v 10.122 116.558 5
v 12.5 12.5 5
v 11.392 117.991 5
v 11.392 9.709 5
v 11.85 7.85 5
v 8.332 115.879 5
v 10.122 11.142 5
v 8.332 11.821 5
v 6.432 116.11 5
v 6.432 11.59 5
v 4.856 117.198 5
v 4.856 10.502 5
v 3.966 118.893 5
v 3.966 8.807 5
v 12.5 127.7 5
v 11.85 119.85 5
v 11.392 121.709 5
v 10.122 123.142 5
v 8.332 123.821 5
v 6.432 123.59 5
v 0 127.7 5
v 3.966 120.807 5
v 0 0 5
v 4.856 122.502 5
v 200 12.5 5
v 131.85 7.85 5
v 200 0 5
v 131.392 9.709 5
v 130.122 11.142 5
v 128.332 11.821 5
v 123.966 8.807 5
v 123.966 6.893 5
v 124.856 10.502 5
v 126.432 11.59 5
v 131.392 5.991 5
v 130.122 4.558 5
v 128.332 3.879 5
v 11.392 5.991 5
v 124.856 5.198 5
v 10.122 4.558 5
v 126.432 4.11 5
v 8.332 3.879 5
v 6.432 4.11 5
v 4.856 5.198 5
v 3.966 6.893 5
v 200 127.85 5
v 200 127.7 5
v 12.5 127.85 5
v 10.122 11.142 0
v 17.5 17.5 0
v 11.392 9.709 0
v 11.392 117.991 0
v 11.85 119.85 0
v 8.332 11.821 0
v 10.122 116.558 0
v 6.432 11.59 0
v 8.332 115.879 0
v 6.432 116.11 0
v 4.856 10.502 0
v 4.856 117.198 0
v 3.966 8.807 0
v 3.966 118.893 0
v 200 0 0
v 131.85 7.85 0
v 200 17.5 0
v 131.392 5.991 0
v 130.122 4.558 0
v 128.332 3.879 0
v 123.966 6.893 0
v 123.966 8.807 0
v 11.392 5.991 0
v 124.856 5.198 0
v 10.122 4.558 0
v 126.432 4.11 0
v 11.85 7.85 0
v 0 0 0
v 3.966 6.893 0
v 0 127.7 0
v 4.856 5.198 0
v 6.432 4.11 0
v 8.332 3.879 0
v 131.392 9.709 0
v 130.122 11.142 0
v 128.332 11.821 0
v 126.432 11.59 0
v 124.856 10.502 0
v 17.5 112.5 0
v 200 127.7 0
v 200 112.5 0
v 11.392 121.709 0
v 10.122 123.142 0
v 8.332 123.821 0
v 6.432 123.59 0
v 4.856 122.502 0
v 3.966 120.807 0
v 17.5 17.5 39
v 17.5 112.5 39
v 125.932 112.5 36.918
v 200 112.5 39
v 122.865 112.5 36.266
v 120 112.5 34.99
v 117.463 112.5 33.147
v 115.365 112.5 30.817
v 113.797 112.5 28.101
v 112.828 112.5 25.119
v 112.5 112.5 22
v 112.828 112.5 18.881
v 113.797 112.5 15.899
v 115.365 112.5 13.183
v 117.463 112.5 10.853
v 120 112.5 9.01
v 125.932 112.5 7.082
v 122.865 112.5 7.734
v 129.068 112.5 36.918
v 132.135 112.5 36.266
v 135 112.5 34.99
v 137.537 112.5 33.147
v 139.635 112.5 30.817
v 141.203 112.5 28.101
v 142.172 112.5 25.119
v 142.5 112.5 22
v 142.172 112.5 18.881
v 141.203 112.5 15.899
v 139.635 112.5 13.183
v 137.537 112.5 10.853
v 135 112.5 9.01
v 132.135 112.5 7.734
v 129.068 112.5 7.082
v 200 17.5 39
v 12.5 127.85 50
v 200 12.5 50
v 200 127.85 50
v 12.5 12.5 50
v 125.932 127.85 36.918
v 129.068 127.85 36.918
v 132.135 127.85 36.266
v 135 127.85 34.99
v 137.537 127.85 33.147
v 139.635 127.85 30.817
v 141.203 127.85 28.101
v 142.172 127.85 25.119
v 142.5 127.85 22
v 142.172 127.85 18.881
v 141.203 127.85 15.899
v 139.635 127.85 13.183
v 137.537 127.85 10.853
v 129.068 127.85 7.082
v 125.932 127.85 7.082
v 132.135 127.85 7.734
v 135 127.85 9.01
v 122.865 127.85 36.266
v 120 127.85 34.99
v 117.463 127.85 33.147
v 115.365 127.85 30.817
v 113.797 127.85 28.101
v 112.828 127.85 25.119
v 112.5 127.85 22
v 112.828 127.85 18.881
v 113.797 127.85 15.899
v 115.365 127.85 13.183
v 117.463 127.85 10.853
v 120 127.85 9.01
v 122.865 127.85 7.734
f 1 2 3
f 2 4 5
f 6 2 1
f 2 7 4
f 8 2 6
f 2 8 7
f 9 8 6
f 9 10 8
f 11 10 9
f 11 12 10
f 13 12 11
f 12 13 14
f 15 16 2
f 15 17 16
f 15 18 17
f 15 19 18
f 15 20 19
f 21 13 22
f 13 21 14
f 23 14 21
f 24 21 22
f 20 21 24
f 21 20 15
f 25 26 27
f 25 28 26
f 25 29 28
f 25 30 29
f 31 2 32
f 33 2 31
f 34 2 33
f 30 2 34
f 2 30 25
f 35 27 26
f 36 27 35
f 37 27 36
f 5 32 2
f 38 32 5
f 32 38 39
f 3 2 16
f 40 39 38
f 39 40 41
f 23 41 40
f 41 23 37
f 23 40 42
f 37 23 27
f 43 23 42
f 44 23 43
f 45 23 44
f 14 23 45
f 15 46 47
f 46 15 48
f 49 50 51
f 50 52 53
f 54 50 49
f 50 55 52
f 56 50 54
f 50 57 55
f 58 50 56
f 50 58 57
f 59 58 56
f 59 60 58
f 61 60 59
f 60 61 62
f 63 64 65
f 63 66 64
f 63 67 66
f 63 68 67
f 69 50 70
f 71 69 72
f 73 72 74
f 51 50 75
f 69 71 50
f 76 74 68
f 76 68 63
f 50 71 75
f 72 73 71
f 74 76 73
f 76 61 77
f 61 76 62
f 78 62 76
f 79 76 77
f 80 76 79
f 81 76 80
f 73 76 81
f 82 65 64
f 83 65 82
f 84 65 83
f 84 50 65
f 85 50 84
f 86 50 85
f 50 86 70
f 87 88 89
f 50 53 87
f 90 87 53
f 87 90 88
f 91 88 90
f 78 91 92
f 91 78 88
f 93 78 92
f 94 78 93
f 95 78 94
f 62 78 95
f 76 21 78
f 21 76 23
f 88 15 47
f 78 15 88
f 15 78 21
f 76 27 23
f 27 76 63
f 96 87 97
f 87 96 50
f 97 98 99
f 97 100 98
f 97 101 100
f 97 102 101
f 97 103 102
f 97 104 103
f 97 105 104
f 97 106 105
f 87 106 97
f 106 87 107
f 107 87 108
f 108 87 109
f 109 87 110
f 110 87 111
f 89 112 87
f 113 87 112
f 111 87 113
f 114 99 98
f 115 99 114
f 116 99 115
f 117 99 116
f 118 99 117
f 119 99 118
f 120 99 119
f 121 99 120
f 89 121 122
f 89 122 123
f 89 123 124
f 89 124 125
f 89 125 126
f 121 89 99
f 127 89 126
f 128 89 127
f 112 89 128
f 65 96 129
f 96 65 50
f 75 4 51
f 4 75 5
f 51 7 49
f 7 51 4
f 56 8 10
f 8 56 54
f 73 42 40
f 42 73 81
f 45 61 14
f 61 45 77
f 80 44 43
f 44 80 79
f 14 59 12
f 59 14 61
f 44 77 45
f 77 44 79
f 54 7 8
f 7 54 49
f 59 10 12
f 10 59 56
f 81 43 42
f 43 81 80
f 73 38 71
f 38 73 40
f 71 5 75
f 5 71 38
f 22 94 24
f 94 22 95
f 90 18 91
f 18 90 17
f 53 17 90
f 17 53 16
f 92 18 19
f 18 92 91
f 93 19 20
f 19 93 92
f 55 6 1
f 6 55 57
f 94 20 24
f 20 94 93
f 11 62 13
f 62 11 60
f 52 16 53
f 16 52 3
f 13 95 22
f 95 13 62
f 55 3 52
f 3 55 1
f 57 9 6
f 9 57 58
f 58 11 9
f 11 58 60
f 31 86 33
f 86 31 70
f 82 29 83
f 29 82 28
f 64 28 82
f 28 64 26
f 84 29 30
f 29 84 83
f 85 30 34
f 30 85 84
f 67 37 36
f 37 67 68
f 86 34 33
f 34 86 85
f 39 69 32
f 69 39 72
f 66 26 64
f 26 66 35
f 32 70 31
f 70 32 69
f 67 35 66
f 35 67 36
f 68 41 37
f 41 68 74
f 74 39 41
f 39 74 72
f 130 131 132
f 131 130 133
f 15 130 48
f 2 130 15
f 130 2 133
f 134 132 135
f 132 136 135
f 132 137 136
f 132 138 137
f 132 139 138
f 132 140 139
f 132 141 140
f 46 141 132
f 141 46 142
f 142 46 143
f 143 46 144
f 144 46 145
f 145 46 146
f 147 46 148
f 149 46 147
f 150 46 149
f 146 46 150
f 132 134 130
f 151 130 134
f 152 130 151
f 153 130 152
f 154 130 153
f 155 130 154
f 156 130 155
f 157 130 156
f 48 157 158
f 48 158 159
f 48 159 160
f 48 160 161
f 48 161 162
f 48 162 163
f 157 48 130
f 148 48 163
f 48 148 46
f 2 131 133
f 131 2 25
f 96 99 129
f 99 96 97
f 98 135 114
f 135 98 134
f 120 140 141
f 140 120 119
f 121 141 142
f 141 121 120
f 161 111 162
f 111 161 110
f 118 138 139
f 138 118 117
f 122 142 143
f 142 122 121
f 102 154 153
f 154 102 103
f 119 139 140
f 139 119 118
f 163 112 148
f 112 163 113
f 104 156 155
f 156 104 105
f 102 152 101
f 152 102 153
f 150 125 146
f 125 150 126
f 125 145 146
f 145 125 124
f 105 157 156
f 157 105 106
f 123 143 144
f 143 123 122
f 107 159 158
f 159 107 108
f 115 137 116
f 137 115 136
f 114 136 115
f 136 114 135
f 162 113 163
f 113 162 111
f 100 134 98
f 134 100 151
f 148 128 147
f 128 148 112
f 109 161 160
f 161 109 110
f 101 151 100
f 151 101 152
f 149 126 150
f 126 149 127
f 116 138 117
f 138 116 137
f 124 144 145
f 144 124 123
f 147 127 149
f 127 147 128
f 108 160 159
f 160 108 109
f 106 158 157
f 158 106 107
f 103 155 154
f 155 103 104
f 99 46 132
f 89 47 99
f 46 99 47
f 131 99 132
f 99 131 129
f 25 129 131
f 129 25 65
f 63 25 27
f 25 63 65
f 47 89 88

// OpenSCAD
// file: 64x32 - 4mm pitch.scad
// Base plate
module case() {
    difference() {
        difference() {
            cube([255.70, 127.70, 5]);
            translate([17.5, 17.5, -1])
            cube([220, 95, 7]);
        }
        // Screw holes
        translate([7.85, 7.85, -1])
        cylinder(7, 4, 4);
        translate([7.85, 119.85, -1])
        cylinder(7, 4, 4);
        translate([127.85, 7.85, -1])
        cylinder(7, 4, 4);
        translate([247.85, 119.85, -1])
        cylinder(7, 4, 4);
        translate([247.85, 7.85, -1])
        cylinder(7, 4, 4);
    }

    // Box
    translate([12.5, 12.5, 5])
    difference() {
        difference() {
            cube([230, 115.35, 45]);
            translate([5, 5, -1])
            cube([220, 95, 35]);
        }

        // Mic stand screw hole
        translate([115, 116, 17])
        rotate([90, 0, 0])
        // Hole should be slightly too small, so thread can be melted in
        cylinder(16.1, 15, 15);
    }
}

case();
// main file
use <64x32 - 4mm pitch.scad>

module cut() {
    translate([200, -1, -1])
    cube([60, 130, 60]);
}

difference() {
    case();
    cut();
}
